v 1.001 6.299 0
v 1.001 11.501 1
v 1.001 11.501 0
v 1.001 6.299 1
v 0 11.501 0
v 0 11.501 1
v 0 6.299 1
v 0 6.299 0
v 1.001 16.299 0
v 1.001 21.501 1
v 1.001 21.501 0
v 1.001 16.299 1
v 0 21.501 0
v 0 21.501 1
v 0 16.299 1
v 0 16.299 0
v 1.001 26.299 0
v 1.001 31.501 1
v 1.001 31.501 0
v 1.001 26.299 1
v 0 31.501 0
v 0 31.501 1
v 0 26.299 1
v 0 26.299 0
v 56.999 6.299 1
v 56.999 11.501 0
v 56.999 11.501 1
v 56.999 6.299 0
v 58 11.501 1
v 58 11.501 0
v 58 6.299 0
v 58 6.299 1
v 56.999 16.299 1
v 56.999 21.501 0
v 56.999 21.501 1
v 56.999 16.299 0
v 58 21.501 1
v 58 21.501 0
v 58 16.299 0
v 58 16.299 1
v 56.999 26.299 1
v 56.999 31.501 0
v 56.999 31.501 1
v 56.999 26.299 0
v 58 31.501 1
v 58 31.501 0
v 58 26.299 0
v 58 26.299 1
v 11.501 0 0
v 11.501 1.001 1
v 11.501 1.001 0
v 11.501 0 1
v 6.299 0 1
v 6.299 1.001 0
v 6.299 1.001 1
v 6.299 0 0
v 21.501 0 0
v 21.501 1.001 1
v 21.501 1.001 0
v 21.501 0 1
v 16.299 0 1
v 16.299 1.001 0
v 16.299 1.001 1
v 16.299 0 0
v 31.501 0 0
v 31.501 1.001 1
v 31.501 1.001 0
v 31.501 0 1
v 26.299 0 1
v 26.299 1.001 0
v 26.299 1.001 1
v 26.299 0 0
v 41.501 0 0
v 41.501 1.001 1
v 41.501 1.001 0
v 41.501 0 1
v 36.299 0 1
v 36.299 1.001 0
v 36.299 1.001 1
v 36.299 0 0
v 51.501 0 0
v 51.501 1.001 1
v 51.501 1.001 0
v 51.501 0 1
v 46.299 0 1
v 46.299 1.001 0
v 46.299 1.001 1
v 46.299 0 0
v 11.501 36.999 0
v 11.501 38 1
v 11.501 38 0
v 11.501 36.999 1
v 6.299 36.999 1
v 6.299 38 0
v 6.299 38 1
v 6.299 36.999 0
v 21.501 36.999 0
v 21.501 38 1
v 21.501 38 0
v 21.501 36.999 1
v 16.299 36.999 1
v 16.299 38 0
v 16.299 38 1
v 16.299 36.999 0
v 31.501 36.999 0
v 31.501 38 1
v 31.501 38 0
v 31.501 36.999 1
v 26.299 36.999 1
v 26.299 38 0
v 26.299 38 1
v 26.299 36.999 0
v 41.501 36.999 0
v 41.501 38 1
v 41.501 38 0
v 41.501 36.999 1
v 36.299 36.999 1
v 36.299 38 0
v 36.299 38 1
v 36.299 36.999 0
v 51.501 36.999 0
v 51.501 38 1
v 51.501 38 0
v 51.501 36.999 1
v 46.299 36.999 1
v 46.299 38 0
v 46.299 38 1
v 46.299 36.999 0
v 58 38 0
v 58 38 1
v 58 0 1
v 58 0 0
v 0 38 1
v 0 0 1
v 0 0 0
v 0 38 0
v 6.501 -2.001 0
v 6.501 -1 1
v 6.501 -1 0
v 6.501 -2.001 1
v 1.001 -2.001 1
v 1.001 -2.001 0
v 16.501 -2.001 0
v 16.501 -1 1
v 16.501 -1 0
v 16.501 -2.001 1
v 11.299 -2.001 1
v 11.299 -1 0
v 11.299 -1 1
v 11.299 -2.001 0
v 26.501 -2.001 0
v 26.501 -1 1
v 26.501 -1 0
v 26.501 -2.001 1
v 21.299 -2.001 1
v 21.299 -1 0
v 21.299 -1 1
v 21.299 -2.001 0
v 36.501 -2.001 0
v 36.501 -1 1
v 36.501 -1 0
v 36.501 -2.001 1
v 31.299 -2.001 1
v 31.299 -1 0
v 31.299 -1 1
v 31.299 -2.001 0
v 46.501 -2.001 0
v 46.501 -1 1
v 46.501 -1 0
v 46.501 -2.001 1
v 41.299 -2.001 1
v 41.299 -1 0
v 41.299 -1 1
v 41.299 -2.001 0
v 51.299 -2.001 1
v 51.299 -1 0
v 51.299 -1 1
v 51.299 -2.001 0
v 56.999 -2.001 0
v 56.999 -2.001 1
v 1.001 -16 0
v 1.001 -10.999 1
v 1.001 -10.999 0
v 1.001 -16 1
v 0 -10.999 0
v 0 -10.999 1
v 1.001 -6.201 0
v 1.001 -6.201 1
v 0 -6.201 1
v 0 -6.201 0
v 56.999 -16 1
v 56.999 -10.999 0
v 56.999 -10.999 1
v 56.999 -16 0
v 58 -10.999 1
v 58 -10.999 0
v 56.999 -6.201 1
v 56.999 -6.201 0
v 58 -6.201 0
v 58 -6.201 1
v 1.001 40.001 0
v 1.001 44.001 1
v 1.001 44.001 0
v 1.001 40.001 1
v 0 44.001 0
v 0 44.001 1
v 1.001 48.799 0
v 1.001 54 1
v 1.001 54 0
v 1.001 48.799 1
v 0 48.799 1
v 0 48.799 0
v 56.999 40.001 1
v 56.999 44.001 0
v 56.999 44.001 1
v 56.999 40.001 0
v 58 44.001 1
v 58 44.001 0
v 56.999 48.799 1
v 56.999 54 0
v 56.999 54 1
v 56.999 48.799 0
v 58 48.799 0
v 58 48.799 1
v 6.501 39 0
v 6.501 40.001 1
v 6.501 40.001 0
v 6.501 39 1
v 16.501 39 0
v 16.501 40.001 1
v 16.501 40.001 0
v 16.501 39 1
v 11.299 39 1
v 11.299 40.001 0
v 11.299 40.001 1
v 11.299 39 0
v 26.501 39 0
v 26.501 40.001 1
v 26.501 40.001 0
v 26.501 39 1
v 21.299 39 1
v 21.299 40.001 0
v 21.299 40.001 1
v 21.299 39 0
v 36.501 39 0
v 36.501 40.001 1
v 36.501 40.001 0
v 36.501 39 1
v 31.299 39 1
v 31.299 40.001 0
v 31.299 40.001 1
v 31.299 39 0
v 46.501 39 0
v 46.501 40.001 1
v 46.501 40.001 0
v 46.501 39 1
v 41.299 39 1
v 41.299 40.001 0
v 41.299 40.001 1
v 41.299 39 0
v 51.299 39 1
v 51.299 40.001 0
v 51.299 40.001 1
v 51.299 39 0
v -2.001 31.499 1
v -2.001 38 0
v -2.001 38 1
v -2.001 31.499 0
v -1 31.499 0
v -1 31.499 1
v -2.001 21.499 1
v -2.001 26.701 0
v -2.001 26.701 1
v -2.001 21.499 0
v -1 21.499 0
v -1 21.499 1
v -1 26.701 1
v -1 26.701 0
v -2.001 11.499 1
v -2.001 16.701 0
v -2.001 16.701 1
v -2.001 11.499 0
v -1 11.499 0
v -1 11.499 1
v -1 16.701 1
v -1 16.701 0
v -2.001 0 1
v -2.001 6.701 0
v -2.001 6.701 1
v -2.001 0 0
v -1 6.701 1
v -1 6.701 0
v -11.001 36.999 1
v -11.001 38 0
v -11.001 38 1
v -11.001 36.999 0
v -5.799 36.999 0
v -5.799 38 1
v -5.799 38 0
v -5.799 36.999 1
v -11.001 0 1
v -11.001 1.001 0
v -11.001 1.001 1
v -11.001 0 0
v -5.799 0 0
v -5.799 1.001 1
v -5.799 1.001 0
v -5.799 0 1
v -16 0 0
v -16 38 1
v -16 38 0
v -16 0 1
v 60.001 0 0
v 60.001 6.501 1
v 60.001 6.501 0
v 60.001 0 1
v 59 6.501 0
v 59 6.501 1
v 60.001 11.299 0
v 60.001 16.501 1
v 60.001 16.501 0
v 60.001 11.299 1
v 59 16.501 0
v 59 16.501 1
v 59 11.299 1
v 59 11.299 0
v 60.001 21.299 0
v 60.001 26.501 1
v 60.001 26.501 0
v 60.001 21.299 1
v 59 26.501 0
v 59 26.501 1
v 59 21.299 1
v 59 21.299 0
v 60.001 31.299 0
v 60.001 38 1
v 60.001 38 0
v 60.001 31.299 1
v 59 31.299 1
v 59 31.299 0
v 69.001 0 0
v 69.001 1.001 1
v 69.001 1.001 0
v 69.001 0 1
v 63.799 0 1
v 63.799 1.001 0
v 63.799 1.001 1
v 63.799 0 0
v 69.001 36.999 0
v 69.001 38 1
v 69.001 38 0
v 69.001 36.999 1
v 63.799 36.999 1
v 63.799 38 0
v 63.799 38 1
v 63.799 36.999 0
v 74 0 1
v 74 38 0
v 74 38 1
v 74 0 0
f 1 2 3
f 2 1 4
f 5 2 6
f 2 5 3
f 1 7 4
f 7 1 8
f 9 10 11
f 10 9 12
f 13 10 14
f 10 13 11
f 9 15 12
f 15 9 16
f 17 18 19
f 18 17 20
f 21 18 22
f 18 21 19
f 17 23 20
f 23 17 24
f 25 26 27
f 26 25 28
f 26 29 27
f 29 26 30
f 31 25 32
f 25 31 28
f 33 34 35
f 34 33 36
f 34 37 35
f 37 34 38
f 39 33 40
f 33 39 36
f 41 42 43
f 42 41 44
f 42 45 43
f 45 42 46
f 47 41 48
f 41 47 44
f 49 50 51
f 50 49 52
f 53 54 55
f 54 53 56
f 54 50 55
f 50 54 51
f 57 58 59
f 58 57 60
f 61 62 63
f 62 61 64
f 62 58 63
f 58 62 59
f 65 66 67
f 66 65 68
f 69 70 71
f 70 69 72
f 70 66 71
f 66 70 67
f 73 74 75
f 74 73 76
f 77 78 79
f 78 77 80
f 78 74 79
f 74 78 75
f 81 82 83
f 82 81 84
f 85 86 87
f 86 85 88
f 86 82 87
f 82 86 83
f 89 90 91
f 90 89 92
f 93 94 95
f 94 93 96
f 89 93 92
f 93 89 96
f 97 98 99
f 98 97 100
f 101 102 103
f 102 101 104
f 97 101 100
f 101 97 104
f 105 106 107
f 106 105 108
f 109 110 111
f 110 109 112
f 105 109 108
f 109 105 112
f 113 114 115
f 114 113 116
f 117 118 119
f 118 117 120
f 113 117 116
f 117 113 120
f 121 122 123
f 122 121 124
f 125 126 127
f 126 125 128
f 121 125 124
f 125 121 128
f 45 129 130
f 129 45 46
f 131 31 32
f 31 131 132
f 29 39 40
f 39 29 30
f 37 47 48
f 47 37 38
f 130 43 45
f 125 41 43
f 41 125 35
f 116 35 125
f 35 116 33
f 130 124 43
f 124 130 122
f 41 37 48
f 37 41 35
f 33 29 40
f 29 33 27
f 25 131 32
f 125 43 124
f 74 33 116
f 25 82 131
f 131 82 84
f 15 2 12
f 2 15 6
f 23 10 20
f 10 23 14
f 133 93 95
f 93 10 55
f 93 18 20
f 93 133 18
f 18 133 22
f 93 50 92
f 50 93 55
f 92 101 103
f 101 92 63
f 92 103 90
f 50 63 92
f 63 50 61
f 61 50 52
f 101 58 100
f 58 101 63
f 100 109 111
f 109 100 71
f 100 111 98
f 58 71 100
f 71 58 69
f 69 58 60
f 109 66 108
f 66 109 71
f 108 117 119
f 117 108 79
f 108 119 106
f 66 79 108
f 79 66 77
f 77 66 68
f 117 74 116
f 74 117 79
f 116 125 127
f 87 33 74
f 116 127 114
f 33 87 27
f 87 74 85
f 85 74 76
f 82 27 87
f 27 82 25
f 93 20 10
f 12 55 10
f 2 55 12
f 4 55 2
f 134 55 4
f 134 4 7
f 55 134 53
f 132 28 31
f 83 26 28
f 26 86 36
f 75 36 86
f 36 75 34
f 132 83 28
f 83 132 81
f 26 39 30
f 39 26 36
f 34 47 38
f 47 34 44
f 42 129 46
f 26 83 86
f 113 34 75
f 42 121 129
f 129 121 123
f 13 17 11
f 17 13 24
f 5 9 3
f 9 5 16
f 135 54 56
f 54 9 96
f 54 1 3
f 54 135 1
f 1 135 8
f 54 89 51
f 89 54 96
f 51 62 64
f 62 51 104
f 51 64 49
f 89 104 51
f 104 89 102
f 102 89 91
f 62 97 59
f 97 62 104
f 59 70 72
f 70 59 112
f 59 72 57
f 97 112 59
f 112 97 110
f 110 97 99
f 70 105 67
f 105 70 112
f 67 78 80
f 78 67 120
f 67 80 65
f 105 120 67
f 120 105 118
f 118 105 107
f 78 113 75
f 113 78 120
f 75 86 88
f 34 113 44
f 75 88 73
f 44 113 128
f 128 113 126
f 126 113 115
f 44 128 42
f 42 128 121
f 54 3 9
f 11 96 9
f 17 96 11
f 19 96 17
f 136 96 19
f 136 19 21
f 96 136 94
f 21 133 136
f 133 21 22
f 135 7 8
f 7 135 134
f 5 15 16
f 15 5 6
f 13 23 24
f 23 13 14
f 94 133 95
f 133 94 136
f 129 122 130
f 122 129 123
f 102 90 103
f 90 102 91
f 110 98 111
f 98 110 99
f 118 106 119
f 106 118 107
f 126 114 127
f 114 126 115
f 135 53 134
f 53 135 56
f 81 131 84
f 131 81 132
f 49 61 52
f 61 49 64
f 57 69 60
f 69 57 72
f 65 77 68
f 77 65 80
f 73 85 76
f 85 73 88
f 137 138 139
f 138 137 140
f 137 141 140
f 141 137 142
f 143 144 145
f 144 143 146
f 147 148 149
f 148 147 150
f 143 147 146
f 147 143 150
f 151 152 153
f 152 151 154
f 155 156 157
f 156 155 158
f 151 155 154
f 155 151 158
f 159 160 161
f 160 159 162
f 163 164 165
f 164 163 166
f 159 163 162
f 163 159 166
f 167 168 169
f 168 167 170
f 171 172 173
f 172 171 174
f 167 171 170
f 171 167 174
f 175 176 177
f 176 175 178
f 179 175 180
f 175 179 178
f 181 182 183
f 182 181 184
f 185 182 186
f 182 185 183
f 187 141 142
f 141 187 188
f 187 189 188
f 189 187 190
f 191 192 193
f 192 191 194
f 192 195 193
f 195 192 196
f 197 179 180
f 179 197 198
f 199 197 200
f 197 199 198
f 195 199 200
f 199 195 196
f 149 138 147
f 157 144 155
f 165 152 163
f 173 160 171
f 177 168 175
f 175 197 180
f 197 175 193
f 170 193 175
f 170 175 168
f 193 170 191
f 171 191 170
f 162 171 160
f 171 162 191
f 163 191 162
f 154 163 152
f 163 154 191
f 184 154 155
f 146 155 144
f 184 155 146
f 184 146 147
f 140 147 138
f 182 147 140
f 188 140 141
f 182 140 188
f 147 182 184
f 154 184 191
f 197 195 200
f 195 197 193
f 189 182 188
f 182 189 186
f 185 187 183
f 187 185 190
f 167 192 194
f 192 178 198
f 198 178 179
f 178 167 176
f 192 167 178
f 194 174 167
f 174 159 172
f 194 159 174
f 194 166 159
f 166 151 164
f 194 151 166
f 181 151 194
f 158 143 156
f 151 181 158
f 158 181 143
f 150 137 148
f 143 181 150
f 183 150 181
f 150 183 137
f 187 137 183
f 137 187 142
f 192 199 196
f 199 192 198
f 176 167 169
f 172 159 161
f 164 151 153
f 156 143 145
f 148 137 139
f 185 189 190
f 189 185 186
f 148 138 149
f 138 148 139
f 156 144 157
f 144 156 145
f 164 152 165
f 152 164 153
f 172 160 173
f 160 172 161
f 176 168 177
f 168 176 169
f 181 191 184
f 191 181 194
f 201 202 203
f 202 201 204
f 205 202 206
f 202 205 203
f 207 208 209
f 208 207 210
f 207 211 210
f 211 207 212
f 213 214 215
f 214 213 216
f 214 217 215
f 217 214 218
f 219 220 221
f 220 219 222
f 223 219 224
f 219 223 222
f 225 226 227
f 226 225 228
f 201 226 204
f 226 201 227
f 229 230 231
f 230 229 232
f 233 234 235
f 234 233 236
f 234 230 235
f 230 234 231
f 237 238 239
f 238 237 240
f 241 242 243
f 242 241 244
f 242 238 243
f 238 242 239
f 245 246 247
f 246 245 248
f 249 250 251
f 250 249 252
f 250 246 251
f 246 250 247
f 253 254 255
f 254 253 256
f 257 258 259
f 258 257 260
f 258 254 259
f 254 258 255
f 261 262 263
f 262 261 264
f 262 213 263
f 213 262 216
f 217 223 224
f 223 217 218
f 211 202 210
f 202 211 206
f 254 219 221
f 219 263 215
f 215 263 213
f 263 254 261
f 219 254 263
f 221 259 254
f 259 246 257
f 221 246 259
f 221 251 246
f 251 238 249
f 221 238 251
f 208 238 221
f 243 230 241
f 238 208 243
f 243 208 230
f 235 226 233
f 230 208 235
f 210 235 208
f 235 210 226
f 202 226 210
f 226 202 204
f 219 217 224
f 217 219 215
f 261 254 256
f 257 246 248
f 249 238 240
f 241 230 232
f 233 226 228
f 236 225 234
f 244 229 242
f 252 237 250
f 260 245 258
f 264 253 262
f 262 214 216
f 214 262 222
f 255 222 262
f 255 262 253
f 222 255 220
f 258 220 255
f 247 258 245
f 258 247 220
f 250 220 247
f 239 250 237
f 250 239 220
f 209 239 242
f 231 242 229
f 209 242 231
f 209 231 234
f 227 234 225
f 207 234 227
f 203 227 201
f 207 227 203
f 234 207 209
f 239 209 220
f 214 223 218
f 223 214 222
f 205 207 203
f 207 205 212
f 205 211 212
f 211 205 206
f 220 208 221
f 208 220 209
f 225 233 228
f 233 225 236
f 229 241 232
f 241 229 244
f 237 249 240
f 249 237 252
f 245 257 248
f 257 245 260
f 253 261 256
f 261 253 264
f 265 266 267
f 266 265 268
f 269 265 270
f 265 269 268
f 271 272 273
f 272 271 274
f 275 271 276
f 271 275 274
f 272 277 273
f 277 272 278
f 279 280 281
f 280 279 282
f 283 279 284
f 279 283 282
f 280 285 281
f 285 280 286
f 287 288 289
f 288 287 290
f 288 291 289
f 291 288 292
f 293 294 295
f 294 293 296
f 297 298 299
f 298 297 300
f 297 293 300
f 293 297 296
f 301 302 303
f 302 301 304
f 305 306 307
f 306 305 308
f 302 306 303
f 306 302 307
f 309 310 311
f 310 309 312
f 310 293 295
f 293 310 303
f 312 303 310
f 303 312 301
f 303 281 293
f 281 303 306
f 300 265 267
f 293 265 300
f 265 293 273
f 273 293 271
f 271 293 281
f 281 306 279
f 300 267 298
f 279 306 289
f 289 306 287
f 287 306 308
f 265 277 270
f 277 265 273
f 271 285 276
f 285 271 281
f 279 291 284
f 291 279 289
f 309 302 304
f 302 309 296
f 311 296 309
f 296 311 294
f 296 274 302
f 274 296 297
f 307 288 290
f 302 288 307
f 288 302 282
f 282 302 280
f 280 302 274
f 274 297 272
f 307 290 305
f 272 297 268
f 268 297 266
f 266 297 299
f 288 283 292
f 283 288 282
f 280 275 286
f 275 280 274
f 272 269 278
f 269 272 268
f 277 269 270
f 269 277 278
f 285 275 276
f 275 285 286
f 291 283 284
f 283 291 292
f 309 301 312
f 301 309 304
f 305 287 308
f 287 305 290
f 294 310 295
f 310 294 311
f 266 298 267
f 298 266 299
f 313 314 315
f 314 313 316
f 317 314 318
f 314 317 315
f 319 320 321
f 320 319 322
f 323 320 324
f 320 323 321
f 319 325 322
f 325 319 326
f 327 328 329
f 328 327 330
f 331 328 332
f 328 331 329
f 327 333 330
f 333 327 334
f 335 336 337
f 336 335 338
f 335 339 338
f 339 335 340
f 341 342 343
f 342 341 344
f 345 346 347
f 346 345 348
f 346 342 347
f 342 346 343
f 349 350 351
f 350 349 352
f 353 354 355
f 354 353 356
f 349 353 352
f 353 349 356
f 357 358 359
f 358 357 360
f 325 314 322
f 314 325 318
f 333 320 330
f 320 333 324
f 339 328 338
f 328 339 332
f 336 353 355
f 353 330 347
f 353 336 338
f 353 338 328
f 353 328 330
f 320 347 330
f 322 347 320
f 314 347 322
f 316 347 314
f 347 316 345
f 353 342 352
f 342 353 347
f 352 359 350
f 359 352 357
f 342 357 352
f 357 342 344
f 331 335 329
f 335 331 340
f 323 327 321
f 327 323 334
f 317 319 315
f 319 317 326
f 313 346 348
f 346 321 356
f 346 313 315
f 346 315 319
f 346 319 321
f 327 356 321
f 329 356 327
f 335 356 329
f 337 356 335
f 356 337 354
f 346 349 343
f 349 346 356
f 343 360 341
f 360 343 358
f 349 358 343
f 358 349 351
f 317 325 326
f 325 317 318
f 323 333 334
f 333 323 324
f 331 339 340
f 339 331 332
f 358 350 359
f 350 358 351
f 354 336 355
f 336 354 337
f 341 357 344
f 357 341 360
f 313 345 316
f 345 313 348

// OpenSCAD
// 5 rectangles to form a box enclosure with finger joinery

width = 38; // mm
length = 58; // mm
height = 15; // mm

wall = 1; // mm
fingers = 5; // mm
finger_dx = 0.2; //mm


function cut_pts_wf1(l,w,f,o) = floor((l-(o?2*w:0)) / f);
function cut_pts_wf(l,w,f,o) = (cut_pts_wf1(l,w,f,o) % 2 == 1) ?
            ((cut_pts_wf1(l,w,f,o) - 1) / 2) :
            (cut_pts_wf1(l,w,f,o) / 2 - 1);
function cut_pts_p(l,w,f,o) = (cut_pts_wf1(l,w,f,o) % 2 == 1) ?
            ((l - (o?2*w:0) - cut_pts_wf1(l,w,f,o) * f) / 2) :
            ((l - (o?2*w:0) - (cut_pts_wf1(l,w,f,o) - 1) * f) / 2);
function cut_pts(l, w, f, o) =
    concat(
        (cut_pts_p(l,w,f,o) < f / 2) ? [] : [[(o?w:0), (o?w:0)+cut_pts_p(l,w,f,o)]],
        [ for (x=[0:cut_pts_wf(l,w,f,o)-1])
            [(o?w:0)+cut_pts_p(l,w,f,o)+f+2*x*f,
            (o?w:0)+cut_pts_p(l,w,f,o)+2*f+2*x*f]
        ],
        (cut_pts_p(l,w,f,o) < f / 2) ? [] : [[l - (o?w:0) - cut_pts_p(l,w,f,o), l - (o?w:0)]]
    );

module base(
        width = 40,
        length = 60,
        height = 20,
        wall = 2,
        fingers = 5,
        finger_dx = 0.5,
        dx = 0.002,
        dx2 = 0.001
    ) {
    width_cut_pts = cut_pts(width, wall, fingers, 0);
    length_cut_pts = cut_pts(length, wall, fingers, 1);

    // base
    difference() {
        cube([length, width, wall]);
        for (cut=width_cut_pts) {
            translate([0-dx2, cut[0]-finger_dx-dx2, 0-dx2])
                cube([wall+dx, (cut[1]-cut[0])+finger_dx+dx, wall+dx]);
        }

        for (cut=width_cut_pts) {
            translate([length-wall-dx2, cut[0]-finger_dx-dx2, 0-dx2])
                cube([wall+dx, (cut[1]-cut[0])+finger_dx+dx, wall+dx]);
        }

        for (cut=length_cut_pts) {
            translate([cut[0]-finger_dx-dx2, 0-dx2, 0-dx2])
                cube([(cut[1]-cut[0])+finger_dx+dx, wall+dx, wall+dx]);
        }

        for (cut=length_cut_pts) {
            translate([cut[0]-finger_dx-dx2, width-wall-dx2, 0-dx2])
                cube([(cut[1]-cut[0])+finger_dx+dx, wall+dx, wall+dx]);
        }
    }
}


module left(
        width = 40,
        length = 60,
        height = 20,
        wall = 2,
        fingers = 5,
        finger_dx = 0.5,
        dx = 0.002,
        dx2 = 0.001
    ) {
    l2 = concat([0], [for (i=cut_pts(length, wall, fingers,1)) each [i[0],i[1]]], [length]);
    length_cut_pts = [ for (i=[0:2:len(l2)-1]) [l2[i],l2[i+1]] ];
    height_cut_pts = cut_pts(height, wall, fingers, 1);

    // left
    difference() {
        cube([length, height, wall]);

        for (cut=length_cut_pts) {
            translate([cut[0]-finger_dx-dx2, height-wall-dx2, 0-dx2])
                cube([(cut[1]-cut[0])+finger_dx+dx, wall+dx, wall+dx]);
        }
        
        for (cut=height_cut_pts) {
            translate([0-dx2, cut[0]-finger_dx-dx2, 0-dx2])
                cube([wall+dx, (cut[1]-cut[0])+finger_dx+dx, wall+dx]);
        }
        
        for (cut=height_cut_pts) {
            translate([length-wall-dx2, cut[0]-finger_dx-dx2, 0-dx2])
                cube([wall+dx, (cut[1]-cut[0])+finger_dx+dx, wall+dx]);
        }
    }
}


module right(
        width = 40,
        length = 60,
        height = 20,
        wall = 2,
        fingers = 5,
        finger_dx = 0.5,
        dx = 0.002,
        dx2 = 0.001
    ) {
    l2 = concat([0], [for (i=cut_pts(length, wall, fingers,1)) each [i[0],i[1]]], [length]);
    length_cut_pts = [ for (i=[0:2:len(l2)-1]) [l2[i],l2[i+1]] ];
    height_cut_pts = cut_pts(height, wall, fingers, 1);

    // right
    difference() {
        cube([length, height, wall]);

        for (cut=length_cut_pts) {
            translate([cut[0]-finger_dx-dx2, 0-dx2, 0-dx2])
                cube([(cut[1]-cut[0])+finger_dx+dx, wall+dx, wall+dx]);
        }
                
        for (cut=height_cut_pts) {
            translate([0-dx2, cut[0]-finger_dx-dx2, 0-dx2])
                cube([wall+dx, (cut[1]-cut[0])+finger_dx+dx, wall+dx]);
        }
        
        for (cut=height_cut_pts) {
            translate([length-wall-dx2, cut[0]-finger_dx-dx2, 0-dx2])
                cube([wall+dx, (cut[1]-cut[0])+finger_dx+dx, wall+dx]);
        }
    }
}
module top(
        width = 40,
        length = 60,
        height = 20,
        wall = 2,
        fingers = 5,
        finger_dx = 0.5,
        dx = 0.002,
        dx2 = 0.001
    ) {
    w2 = concat([0], [for (i=cut_pts(width, wall, fingers,0)) each [i[0],i[1]]], [width]);
    width_cut_pts = [ for (i=[0:2:len(w2)-1]) [w2[i],w2[i+1]] ];
    h2 = concat([0], [for (i=cut_pts(height, wall, fingers,1)) each [i[0],i[1]]], [height]);
    height_cut_pts = [ for (i=[0:2:len(h2)-3]) [h2[i],h2[i+1]] ];


    // top
    translate([height/2, width/2, 0]) rotate([0,0,180])
    translate([-height/2,-width/2,0]) difference() {
        cube([height, width, wall]);

        for (cut=width_cut_pts) {
            translate([0-dx2, cut[0]-finger_dx-dx2, 0-dx2])
                cube([wall+dx, (cut[1]-cut[0])+finger_dx+dx, wall+dx]);
        }
        
        for (cut=height_cut_pts) {
            translate([cut[0]-finger_dx-dx2, 0-dx2, 0-dx2])
                cube([(cut[1]-cut[0])+finger_dx+dx, wall+dx, wall+dx]);
        }
        
        for (cut=height_cut_pts) {
            translate([cut[0]-finger_dx-dx2, width-wall-dx2, 0-dx2])
                cube([(cut[1]-cut[0])+finger_dx+dx, wall+dx, wall+dx]);
        }
        
    }
}

module bottom(
        width = 40,
        length = 60,
        height = 20,
        wall = 2,
        fingers = 5,
        finger_dx = 0.5,
        dx = 0.002,
        dx2 = 0.001
    ) {
    w2 = concat([0], [for (i=cut_pts(width, wall, fingers,0)) each [i[0],i[1]]], [width]);
    width_cut_pts = [ for (i=[0:2:len(w2)-1]) [w2[i],w2[i+1]] ];
    h2 = concat([0], [for (i=cut_pts(height, wall, fingers,1)) each [i[0],i[1]]], [height]);
    height_cut_pts = [ for (i=[0:2:len(h2)-3]) [h2[i],h2[i+1]] ];

    // top
    difference() {
        cube([height, width, wall]);

        for (cut=width_cut_pts) {
            translate([0-dx2, cut[0]-finger_dx-dx2, 0-dx2])
                cube([wall+dx, (cut[1]-cut[0])+finger_dx+dx, wall+dx]);
        }
        
        for (cut=height_cut_pts) {
            translate([cut[0]-finger_dx-dx2, 0-dx2, 0-dx2])
                cube([(cut[1]-cut[0])+finger_dx+dx, wall+dx, wall+dx]);
        }
        
        for (cut=height_cut_pts) {
            translate([cut[0]-finger_dx-dx2, width-wall-dx2, 0-dx2])
                cube([(cut[1]-cut[0])+finger_dx+dx, wall+dx, wall+dx]);
        }
    }
}

base(
    width = width,
    length = length,
    height = height,
    wall = wall,
    fingers = fingers,
    finger_dx = finger_dx
);

translate([0,-height-1,0]) left(
    width = width,
    length = length,
    height = height,
    wall = wall,
    fingers = fingers,
    finger_dx = finger_dx
);

translate([0,width+1,0]) right(
    width = width,
    length = length,
    height = height,
    wall = wall,
    fingers = fingers,
    finger_dx = finger_dx
);

translate([-height-1,0,0]) top(
    width = width,
    length = length,
    height = height,
    wall = wall,
    fingers = fingers,
    finger_dx = finger_dx
);

translate([length+1,0,0]) bottom(
    width = width,
    length = length,
    height = height,
    wall = wall,
    fingers = fingers,
    finger_dx = finger_dx
);
